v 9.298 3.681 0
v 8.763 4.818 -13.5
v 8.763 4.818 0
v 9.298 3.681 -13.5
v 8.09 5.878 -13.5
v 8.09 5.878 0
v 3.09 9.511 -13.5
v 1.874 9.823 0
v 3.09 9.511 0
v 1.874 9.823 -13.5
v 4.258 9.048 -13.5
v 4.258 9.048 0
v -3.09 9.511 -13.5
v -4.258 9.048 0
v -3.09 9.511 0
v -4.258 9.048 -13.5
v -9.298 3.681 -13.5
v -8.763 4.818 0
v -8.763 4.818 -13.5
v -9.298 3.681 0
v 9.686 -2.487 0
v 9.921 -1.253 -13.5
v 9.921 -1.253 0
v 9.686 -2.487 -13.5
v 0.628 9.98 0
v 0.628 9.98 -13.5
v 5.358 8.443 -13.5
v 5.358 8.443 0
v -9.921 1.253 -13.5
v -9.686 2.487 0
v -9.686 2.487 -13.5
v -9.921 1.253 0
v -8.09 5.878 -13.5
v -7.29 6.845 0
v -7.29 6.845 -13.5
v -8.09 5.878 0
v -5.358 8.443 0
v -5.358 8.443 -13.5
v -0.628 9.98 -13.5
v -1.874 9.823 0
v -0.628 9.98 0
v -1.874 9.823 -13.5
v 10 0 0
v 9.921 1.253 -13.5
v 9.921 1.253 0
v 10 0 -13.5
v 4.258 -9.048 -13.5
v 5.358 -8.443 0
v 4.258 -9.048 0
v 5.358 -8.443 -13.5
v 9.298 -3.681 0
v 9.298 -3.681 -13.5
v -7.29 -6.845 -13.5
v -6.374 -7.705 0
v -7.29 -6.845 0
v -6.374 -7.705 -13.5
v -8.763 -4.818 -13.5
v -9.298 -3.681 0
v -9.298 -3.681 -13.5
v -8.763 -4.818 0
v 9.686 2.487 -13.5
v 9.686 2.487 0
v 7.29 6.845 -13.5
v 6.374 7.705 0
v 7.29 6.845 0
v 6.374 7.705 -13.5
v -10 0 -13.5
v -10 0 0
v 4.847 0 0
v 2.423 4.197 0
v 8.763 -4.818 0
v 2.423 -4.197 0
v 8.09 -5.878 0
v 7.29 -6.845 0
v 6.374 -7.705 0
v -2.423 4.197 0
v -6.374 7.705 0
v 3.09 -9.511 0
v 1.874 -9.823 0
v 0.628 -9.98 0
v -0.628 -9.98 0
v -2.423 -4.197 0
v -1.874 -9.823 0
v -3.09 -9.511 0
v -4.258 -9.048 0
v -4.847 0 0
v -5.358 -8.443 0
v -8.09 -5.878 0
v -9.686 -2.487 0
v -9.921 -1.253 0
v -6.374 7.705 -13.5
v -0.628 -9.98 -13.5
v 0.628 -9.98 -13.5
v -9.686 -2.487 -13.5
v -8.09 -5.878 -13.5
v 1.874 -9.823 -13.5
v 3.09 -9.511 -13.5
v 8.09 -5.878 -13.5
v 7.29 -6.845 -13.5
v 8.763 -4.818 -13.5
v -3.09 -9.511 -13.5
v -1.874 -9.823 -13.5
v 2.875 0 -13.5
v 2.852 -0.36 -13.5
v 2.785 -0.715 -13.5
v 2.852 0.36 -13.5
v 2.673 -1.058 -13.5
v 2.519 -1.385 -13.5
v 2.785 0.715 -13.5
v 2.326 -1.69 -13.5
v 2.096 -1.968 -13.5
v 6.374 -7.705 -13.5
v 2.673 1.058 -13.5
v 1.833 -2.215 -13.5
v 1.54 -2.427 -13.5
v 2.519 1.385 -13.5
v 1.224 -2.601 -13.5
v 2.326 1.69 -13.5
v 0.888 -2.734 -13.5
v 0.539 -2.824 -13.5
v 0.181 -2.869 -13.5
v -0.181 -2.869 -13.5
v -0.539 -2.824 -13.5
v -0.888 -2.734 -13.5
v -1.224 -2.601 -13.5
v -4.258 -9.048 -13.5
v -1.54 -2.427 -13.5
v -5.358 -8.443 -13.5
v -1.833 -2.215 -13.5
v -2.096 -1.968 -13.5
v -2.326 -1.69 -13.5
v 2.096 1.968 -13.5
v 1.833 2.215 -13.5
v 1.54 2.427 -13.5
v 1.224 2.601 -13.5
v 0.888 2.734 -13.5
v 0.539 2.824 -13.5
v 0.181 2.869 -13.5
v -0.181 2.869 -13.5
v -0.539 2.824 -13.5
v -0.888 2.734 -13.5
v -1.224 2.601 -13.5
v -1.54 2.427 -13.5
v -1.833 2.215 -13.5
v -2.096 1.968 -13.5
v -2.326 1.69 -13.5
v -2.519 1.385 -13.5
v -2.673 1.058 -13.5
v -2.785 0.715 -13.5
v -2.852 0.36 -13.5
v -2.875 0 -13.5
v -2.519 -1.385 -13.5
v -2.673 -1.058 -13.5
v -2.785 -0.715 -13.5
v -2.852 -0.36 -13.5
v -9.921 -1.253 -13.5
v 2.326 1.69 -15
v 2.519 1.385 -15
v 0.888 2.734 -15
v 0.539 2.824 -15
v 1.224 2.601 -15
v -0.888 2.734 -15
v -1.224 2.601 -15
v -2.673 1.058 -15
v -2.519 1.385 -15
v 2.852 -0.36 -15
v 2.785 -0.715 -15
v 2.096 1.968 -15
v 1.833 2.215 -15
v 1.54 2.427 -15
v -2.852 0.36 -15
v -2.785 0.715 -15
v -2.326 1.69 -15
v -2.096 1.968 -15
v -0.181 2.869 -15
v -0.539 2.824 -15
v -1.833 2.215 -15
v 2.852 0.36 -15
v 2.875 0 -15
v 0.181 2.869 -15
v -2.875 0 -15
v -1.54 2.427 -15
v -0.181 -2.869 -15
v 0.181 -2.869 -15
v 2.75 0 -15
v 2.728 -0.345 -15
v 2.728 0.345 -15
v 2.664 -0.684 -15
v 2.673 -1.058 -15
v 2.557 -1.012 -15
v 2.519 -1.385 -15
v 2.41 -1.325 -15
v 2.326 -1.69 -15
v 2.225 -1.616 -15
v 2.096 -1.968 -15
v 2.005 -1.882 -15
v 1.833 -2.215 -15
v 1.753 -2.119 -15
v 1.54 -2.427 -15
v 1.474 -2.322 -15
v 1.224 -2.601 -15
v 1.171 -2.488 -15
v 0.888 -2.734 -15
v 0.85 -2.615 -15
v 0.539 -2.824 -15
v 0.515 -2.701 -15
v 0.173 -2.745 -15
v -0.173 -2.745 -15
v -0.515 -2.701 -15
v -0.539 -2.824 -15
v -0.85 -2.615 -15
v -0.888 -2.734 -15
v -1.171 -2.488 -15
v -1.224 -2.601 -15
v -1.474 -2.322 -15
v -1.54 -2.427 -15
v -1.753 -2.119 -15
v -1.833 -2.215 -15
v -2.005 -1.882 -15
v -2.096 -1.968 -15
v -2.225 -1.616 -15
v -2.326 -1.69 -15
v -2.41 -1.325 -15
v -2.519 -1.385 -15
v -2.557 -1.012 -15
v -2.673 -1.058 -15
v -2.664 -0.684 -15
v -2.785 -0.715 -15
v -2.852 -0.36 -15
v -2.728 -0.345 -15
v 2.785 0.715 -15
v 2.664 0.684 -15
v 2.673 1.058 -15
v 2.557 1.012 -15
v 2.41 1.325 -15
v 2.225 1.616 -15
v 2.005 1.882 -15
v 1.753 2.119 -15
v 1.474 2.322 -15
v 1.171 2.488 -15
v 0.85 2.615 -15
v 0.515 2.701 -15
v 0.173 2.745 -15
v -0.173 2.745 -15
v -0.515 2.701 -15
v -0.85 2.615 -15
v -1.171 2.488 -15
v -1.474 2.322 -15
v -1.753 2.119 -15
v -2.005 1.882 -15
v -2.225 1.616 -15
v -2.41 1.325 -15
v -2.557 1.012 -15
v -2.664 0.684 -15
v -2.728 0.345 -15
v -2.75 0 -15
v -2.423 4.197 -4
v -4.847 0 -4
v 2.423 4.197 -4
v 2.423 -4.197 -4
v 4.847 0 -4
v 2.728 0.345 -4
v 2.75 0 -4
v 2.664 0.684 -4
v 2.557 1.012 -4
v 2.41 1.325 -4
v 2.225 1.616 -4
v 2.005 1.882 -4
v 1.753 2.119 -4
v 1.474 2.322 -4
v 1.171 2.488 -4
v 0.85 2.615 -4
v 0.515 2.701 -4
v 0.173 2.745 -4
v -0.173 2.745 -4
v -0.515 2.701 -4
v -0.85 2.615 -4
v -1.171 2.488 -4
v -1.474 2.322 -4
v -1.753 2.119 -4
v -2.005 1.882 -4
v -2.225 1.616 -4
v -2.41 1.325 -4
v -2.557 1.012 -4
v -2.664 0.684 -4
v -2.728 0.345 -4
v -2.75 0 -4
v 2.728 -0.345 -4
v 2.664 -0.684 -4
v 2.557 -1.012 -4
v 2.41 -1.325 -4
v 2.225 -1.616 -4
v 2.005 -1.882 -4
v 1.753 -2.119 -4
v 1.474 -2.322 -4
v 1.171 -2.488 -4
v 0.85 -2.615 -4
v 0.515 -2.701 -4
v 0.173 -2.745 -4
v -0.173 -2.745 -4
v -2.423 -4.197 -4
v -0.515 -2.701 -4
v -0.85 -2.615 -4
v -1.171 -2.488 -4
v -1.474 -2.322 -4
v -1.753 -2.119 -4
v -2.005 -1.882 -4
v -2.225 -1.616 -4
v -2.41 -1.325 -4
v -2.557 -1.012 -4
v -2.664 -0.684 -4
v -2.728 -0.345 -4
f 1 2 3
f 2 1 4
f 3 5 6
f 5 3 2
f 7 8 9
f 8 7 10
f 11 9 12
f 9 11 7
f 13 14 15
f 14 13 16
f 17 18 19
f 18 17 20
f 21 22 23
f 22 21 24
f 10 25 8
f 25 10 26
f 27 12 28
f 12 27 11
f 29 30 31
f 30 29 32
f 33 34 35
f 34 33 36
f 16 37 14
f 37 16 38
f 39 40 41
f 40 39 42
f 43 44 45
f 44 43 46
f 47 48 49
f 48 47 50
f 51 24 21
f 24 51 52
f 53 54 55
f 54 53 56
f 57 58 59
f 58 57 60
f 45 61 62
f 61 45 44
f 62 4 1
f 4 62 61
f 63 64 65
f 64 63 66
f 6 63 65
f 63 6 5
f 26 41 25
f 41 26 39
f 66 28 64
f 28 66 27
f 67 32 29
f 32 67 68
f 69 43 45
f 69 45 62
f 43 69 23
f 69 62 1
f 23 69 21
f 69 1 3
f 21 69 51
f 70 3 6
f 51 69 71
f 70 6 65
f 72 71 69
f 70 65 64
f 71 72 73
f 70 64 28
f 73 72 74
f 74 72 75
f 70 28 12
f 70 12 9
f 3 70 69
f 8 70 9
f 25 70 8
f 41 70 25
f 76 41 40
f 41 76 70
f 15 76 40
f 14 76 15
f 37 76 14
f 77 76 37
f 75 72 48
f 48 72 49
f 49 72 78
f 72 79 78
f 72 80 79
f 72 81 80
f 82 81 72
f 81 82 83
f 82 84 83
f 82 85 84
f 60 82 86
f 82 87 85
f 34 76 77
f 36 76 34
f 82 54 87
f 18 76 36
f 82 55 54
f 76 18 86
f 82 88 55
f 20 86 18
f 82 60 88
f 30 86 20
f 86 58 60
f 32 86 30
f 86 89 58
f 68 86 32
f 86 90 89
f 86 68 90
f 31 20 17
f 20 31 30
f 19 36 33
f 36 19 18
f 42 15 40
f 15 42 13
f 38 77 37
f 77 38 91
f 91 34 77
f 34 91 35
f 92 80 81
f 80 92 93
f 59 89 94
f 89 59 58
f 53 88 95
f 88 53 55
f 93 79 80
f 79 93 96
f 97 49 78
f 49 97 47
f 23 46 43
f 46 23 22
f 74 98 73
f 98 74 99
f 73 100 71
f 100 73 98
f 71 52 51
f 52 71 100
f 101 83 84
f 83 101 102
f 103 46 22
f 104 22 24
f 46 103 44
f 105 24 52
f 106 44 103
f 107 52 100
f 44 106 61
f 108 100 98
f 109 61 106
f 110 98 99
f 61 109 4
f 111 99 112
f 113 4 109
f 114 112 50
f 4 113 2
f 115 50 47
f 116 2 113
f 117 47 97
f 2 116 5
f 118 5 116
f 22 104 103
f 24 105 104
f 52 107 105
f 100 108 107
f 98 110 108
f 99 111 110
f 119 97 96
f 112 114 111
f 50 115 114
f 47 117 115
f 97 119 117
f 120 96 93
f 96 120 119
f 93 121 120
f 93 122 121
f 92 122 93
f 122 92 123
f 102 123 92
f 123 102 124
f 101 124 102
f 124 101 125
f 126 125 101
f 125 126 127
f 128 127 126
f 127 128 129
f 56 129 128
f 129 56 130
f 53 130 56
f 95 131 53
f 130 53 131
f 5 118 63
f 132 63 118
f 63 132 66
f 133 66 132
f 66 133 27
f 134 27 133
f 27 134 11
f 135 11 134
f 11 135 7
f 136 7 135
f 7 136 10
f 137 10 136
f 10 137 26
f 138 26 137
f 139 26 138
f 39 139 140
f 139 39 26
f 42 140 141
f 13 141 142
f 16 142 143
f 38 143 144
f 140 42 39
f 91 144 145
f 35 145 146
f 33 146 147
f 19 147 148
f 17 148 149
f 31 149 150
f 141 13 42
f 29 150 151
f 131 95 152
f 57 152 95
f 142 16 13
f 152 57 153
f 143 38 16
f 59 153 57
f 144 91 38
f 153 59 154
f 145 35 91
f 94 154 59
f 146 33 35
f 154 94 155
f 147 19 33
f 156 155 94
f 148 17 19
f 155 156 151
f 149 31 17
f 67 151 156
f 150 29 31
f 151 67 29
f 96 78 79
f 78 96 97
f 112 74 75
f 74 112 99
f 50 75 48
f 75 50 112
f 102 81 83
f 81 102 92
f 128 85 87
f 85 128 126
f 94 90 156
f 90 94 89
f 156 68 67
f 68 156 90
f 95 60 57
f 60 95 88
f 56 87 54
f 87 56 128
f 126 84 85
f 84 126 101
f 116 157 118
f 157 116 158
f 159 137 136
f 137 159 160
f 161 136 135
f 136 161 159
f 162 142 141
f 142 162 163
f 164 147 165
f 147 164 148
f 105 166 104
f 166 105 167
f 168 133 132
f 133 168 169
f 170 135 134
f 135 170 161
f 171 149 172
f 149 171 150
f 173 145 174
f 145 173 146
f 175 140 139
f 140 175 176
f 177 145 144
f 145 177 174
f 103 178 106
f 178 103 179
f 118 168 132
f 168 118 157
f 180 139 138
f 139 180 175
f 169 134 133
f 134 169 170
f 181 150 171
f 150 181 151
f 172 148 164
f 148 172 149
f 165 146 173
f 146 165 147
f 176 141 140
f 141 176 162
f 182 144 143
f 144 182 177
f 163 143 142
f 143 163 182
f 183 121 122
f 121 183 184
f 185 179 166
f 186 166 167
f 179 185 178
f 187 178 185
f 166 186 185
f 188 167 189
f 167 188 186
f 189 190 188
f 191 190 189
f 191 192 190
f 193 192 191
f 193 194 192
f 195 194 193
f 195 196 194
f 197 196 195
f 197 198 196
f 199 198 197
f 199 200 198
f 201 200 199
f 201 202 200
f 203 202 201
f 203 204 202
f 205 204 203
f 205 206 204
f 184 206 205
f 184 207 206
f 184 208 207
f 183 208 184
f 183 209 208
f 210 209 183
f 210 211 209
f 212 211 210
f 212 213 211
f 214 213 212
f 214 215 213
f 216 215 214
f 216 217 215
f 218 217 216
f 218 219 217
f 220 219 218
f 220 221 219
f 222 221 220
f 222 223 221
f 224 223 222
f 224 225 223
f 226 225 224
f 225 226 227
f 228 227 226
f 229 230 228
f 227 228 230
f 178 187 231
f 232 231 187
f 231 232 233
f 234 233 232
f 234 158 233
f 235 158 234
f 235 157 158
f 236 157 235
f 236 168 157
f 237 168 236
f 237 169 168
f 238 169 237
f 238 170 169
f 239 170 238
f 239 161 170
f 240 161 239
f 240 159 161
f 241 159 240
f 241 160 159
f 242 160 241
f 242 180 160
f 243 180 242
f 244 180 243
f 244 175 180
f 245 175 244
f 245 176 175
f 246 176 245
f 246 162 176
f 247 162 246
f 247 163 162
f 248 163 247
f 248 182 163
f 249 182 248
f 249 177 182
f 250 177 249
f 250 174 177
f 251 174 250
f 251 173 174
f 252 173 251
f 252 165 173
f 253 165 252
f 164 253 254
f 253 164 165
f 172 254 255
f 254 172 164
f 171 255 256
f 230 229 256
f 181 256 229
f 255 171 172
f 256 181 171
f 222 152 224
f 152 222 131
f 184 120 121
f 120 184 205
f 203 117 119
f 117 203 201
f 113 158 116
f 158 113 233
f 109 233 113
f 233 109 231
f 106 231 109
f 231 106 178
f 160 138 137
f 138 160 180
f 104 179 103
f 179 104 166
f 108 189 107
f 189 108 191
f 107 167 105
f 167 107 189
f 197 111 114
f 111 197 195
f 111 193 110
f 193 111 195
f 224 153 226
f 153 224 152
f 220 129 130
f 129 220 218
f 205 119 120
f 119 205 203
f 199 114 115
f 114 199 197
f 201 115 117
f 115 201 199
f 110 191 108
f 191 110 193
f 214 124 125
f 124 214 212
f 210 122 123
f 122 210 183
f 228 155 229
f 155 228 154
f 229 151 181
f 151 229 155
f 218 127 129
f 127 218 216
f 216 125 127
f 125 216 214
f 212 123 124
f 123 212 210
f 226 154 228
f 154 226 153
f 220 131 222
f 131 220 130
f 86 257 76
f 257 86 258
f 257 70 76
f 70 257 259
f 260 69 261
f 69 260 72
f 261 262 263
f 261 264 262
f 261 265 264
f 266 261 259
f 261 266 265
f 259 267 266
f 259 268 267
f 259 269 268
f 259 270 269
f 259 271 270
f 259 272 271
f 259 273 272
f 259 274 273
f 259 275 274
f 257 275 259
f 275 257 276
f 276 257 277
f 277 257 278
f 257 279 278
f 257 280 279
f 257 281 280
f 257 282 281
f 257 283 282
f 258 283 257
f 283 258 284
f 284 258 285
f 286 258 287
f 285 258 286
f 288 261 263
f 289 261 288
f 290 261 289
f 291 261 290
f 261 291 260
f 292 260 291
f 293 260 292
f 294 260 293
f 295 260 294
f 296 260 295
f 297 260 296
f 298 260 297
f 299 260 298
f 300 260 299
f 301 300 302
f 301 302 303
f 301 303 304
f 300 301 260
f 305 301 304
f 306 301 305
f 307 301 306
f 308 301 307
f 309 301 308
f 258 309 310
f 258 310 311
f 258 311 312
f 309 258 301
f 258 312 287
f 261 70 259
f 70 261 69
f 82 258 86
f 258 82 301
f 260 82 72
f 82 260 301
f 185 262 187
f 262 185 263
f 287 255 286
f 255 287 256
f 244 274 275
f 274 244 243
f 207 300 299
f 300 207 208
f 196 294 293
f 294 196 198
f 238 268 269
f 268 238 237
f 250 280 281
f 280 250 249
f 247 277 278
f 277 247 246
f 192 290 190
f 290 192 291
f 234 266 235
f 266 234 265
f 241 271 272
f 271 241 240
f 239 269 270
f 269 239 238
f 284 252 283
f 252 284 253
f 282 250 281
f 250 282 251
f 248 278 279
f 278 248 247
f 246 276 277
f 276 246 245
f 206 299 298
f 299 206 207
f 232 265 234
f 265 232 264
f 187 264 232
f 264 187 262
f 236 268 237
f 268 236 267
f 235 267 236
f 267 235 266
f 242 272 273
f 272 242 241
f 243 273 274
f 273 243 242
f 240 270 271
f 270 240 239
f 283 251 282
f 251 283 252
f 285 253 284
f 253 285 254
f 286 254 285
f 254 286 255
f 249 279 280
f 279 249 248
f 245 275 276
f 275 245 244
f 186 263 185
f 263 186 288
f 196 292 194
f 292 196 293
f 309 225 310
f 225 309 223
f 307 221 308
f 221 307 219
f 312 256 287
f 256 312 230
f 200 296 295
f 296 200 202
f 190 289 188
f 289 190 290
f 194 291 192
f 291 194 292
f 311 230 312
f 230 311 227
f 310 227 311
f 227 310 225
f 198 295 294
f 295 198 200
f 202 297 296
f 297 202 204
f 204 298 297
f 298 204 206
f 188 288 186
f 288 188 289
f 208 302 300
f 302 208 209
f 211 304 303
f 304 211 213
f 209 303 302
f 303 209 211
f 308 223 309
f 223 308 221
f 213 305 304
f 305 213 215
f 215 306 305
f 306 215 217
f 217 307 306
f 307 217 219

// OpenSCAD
$fn = 50;


difference() {
	union() {
		translate(v = [0, 0, -13.5000000000]) {
			cylinder(h = 13.5000000000, r = 10.0000000000);
		}
		#translate(v = [0, 0, -15.0000000000]) {
			cylinder(h = 15, r = 2.8750000000);
		}
	}
	union() {
		translate(v = [0, 0, 0]) {
			rotate(a = [0, 0, 0]) {
				difference() {
					union() {
						translate(v = [0, 0, -4]) {
							linear_extrude(height = 4) {
								polygon(points = [[4.8468000000, 0.0000000000], [2.4234000000, 4.1974519271], [-2.4234000000, 4.1974519271], [-4.8468000000, 0.0000000000], [-2.4234000000, -4.1974519271], [2.4234000000, -4.1974519271]]);
							}
						}
					}
					union();
				}
			}
		}
		#translate(v = [0, 0, -100.0000000000]) {
			cylinder(h = 200, r = 2.7500000000);
		}
	}
}
